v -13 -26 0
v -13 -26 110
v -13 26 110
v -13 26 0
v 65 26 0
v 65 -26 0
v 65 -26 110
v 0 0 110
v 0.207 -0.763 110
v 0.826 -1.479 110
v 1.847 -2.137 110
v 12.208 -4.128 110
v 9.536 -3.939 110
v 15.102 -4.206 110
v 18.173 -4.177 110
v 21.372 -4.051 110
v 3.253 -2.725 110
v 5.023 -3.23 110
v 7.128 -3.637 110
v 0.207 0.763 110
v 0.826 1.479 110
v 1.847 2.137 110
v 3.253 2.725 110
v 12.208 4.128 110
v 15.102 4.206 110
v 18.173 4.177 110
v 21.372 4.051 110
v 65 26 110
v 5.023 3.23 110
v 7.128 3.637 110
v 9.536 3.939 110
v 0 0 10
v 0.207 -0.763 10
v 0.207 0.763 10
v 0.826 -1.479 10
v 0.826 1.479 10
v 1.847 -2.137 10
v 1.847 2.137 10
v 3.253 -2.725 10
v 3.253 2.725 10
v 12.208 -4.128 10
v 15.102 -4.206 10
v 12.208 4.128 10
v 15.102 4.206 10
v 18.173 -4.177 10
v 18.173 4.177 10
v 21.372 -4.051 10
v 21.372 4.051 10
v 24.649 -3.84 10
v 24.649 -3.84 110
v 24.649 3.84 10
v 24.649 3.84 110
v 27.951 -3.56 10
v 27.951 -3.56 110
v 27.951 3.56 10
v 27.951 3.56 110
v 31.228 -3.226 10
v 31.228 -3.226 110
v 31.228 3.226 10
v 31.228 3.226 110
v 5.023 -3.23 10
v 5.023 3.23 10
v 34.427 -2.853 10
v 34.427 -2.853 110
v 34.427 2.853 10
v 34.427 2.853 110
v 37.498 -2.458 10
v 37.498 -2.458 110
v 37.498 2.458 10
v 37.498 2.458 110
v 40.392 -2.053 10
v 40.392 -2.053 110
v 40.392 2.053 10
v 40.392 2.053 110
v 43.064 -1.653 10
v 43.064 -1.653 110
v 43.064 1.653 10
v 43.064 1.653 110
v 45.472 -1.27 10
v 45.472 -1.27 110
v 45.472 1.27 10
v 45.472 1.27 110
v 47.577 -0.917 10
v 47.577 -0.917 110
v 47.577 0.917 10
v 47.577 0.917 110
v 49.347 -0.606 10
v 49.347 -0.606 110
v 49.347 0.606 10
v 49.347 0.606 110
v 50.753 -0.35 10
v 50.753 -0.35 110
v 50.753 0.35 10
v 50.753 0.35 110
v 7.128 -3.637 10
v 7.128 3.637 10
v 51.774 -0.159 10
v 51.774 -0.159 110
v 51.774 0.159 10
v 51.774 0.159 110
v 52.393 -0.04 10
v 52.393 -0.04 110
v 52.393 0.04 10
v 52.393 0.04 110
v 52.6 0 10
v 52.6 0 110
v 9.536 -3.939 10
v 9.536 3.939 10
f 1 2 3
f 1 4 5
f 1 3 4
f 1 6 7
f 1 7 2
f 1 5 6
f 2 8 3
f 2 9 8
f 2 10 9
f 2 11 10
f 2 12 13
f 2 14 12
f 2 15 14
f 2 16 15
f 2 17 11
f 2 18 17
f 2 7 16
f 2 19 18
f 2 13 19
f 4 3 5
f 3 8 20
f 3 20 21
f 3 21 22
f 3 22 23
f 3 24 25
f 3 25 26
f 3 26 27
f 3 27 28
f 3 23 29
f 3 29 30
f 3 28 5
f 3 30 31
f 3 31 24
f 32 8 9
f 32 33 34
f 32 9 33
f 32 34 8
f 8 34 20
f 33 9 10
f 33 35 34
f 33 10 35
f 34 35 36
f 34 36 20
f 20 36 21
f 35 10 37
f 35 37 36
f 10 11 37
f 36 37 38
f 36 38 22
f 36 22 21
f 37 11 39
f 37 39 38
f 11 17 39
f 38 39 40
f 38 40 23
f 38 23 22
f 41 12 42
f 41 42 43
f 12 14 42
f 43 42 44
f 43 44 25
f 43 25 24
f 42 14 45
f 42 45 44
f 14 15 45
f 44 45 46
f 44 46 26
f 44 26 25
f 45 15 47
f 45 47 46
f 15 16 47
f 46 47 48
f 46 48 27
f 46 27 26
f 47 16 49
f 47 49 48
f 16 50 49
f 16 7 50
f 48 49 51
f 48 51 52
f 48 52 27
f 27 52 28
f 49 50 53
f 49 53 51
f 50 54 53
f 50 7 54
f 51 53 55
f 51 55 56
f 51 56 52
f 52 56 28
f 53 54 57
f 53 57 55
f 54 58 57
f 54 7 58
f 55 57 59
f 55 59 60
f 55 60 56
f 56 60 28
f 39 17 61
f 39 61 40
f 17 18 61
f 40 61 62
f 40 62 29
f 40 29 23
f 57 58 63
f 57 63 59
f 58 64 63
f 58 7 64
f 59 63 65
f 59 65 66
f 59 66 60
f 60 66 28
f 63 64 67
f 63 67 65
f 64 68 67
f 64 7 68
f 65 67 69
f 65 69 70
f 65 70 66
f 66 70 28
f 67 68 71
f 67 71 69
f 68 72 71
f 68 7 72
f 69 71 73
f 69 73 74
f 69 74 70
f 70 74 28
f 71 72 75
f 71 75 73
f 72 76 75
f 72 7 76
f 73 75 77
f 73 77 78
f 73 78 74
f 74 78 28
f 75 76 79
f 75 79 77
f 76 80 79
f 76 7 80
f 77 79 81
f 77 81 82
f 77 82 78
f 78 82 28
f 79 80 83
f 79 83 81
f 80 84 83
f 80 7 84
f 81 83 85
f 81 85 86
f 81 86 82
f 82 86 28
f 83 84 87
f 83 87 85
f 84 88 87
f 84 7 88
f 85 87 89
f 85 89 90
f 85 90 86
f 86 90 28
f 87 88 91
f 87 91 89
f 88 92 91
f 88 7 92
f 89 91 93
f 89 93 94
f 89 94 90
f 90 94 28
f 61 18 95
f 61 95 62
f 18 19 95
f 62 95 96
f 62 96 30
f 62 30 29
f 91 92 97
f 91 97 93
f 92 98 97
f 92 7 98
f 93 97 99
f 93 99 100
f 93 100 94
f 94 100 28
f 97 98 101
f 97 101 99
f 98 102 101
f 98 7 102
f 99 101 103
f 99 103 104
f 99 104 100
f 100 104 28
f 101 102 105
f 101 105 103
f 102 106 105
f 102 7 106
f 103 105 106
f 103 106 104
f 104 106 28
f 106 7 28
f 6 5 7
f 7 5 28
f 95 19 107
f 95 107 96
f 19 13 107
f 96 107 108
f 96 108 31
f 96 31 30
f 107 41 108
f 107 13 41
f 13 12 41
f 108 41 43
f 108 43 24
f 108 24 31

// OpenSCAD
// file: ../lib/TextGenerator.scad
//Draw text
scale([4,4,4]) drawtext("Hello World!");

//Draw character set
//scale([2,2,2]) drawtext(" !\"#$%&'()*+,-./0123456789:;<=>?@ABCDEFGHIJKLMNOPQRSTUVWXYZ[\\]^_`abcdefghijklmnopqrstuvwxyz{|}");

module drawtext(text,center=false) {
	//Characters
	chars = " !\"#$%&'()*+,-./0123456789:;<=>?@ABCDEFGHIJKLMNOPQRSTUVWXYZ[\\]^_`abcdefghijklmnopqrstuvwxyz{|}";

	//Chracter table defining 5x7 characters
	//Adapted from: http://www.geocities.com/dinceraydin/djlcdsim/chartable.js
	char_table = [ [ 0, 0, 0, 0, 0, 0, 0],
                  [ 4, 0, 4, 4, 4, 4, 4],
                  [ 0, 0, 0, 0,10,10,10],
                  [10,10,31,10,31,10,10],
                  [ 4,30, 5,14,20,15, 4],
                  [ 3,19, 8, 4, 2,25,24],
                  [13,18,21, 8,20,18,12],
                  [ 0, 0, 0, 0, 8, 4,12],
                  [ 2, 4, 8, 8, 8, 4, 2],
                  [ 8, 4, 2, 2, 2, 4, 8],
                  [ 0, 4,21,14,21, 4, 0],
                  [ 0, 4, 4,31, 4, 4, 0],
                  [ 8, 4,12, 0, 0, 0, 0],
                  [ 0, 0, 0,31, 0, 0, 0],
                  [12,12, 0, 0, 0, 0, 0],
                  [ 0,16, 8, 4, 2, 1, 0],
                  [14,17,25,21,19,17,14],
                  [14, 4, 4, 4, 4,12, 4],
                  [31, 8, 4, 2, 1,17,14],
                  [14,17, 1, 2, 4, 2,31],
                  [ 2, 2,31,18,10, 6, 2],
                  [14,17, 1, 1,30,16,31],
                  [14,17,17,30,16, 8, 6],
                  [ 8, 8, 8, 4, 2, 1,31],
                  [14,17,17,14,17,17,14],
                  [12, 2, 1,15,17,17,14],
                  [ 0,12,12, 0,12,12, 0],
                  [ 8, 4,12, 0,12,12, 0],
                  [ 2, 4, 8,16, 8, 4, 2],
                  [ 0, 0,31, 0,31, 0, 0],
                  [16, 8, 4, 2, 4, 8,16],
                  [ 4, 0, 4, 2, 1,17,14],
                  [14,21,21,13, 1,17,14],
                  [17,17,31,17,17,17,14],
                  [30,17,17,30,17,17,30],
                  [14,17,16,16,16,17,14],
                  [30,17,17,17,17,17,30],
                  [31,16,16,30,16,16,31],
                  [16,16,16,30,16,16,31],
                  [15,17,17,23,16,17,14],
                  [17,17,17,31,17,17,17],
                  [14, 4, 4, 4, 4, 4,14],
                  [12,18, 2, 2, 2, 2, 7],
                  [17,18,20,24,20,18,17],
                  [31,16,16,16,16,16,16],
                  [17,17,17,21,21,27,17],
                  [17,17,19,21,25,17,17],
                  [14,17,17,17,17,17,14],
                  [16,16,16,30,17,17,30],
                  [13,18,21,17,17,17,14],
                  [17,18,20,30,17,17,30],
                  [30, 1, 1,14,16,16,15],
                  [ 4, 4, 4, 4, 4, 4,31],
                  [14,17,17,17,17,17,17],
                  [ 4,10,17,17,17,17,17],
                  [10,21,21,21,17,17,17],
                  [17,17,10, 4,10,17,17],
                  [ 4, 4, 4,10,17,17,17],
                  [31,16, 8, 4, 2, 1,31],
                  [14, 8, 8, 8, 8, 8,14],
                  [ 0, 1, 2, 4, 8,16, 0],
                  [14, 2, 2, 2, 2, 2,14],
                  [ 0, 0, 0, 0,17,10, 4],
                  [31, 0, 0, 0, 0, 0, 0],
                  [ 0, 0, 0, 0, 2, 4, 8],
                  [15,17,15, 1,14, 0, 0],
                  [30,17,17,25,22,16,16],
                  [14,17,16,16,14, 0, 0],
                  [15,17,17,19,13, 1, 1],
                  [14,16,31,17,14, 0, 0],
                  [ 8, 8, 8,28, 8, 9, 6],
                  [14, 1,15,17,15, 0, 0],
                  [17,17,17,25,22,16,16],
                  [14, 4, 4, 4,12, 0, 4],
                  [12,18, 2, 2, 2, 6, 2],
                  [18,20,24,20,18,16,16],
                  [14, 4, 4, 4, 4, 4,12],
                  [17,17,21,21,26, 0, 0],
                  [17,17,17,25,22, 0, 0],
                  [14,17,17,17,14, 0, 0],
                  [16,16,30,17,30, 0, 0],
                  [ 1, 1,15,19,13, 0, 0],
                  [16,16,16,25,22, 0, 0],
                  [30, 1,14,16,15, 0, 0],
                  [ 6, 9, 8, 8,28, 8, 8],
                  [13,19,17,17,17, 0, 0],
                  [ 4,10,17,17,17, 0, 0],
                  [10,21,21,17,17, 0, 0],
                  [17,10, 4,10,17, 0, 0],
                  [14, 1,15,17,17, 0, 0],
                  [31, 8, 4, 2,31, 0, 0],
                  [ 2, 4, 4, 8, 4, 4, 2],
                  [ 4, 4, 4, 4, 4, 4, 4],
                  [ 8, 4, 4, 2, 4, 4, 8] ];

	//Binary decode table
	dec_table = [ "00000", "00001", "00010", "00011", "00100", "00101",
  	            "00110", "00111", "01000", "01001", "01010", "01011",
  	            "01100", "01101", "01110", "01111", "10000", "10001",
  	            "10010", "10011", "10100", "10101", "10110", "10111",
	            "11000", "11001", "11010", "11011", "11100", "11101",
	            "11110", "11111" ];

    //Process string one character at a time
    for(itext = [0:len(text)-1]) {
        assign(length = len(text)) {
            //Convert character to index
            assign(ichar = search(text[itext],chars,1)[0]) {
                //Decode character - rows
                for(irow = [0:6]) {
                    assign(val = dec_table[char_table[ichar][irow]]) {
                        //Decode character - cols
                        for(icol = [0:4]) {
                            assign(bit = search(val[icol],"01",1)[0]) {
                                if(bit) {
                                    //Output cube
                                    if (center)
                                        translate([icol - 2.5 +
                                        (6*itext)-len(text)/2, irow-3.5,0])
                                            cube([1.0001,1.0001,1]);
                                    else {
                                        translate([icol + (6*itext), irow, 0])
                                            cube([1.0001,1.0001,1]);
                                    }
                                }
                            }
                        }
                    }
                }
            }
	}
}
}
// file: ../../Parameters.scad
//Main tube diameter - hole [mm]
main_tube_outer_diameter = 25.4;
main_tube_inner_diameter = 23.5;

//Tube for undercarriage - hole [mm]
tube_for_undercarriage_outer_diameter = 10.6;
tube_for_undercarriage_inner_diameter = 6;
global_clearance = 0.5;


//umístění podvozkových trubek

second_undercarriage_hole = main_tube_outer_diameter*2 + main_tube_outer_diameter/5 + main_tube_outer_diameter/2 + 170 + 160;

// Parameters of cube couplings
coupling_wall_thickness = main_tube_outer_diameter/5;  //width of coupling walls 
thickness_between_tubes = main_tube_outer_diameter/10;    // minimum distance between tubes in couplings

coupling_wall_thickness_undercarriage = tube_for_undercarriage_outer_diameter/3;
thickness_between_tubes_undercarriage = tube_for_undercarriage_outer_diameter/10;

//Screw diameter and nut for M4 [mm]
M4_screw_diameter=4.5;
Nut_height_M4 = 3.2;
Nut_diameter_M4 = 7.86;


//Screw diameter and nut for M3 [mm]
M3_screw_diameter = 3.2;
Nut_height_M3 = 1.7;	
Nut_diameter_M3 = 6.6; 


//The tube for help
Help_main_tube_outer = 25;
Help_main_tube_inner = 23; 
Help_tube_for_undercarriage_outer = 10;
Help_tube_for_undercarriage_inner = 5;


//main hull parameters

hull_drop_length = 580;
hull_wall_thickness = 0.8;
hull_y_size = 120;
hull_z_size = 150;
hull_x_size = 580;
hull_corner_radius = 4;
hull_airfoil_thickness= 35;  // thickness of drop generating airfoil in percent of lenght.
hull_scale_x = 1;
hull_scale_y = 1.5;
hull_scale_z = 1.5;

main_pilon_position = 170+68;
cover_pilon_position = 180;
height_of_vertical_tube = 275; //278mm je změřená délka trubky. 

ribbon_width = 5; // šířka vyztužovacích lemů. 

// šířka otvoru v přední části kapoty pro držák motoru.
width_of_engine_holder = 63;

//Top Cover Division - dělení horního krytu pro tisk
top_cover_division = [0, 50, 150, 280, 410, hull_x_size]; // upraveny seznam tak, aby deleni začinalo od nuly, což umožňí úplně automatické rozdělení.

//Bottom Cover Division - dělení dolního krytu pro tisk
bottom_cover_division = [0,100,250,365, 470, hull_x_size];
// zkrácená část pro payload pro testovací tisk
//bottom_cover_division = [0,200,250,365, 470, hull_x_size];

//Base Divison - dělení podložky
base_division = [0,140,280,410, hull_x_size];

//Cover pilon division - na výšku (v ose Z)
cover_pilon_division = [0,170,height_of_vertical_tube + main_tube_outer_diameter + coupling_wall_thickness];

//pozice šroubů
	//horní kryt
top_screw_position = [0, (top_cover_division[0] + top_cover_division[1])/4, (top_cover_division[2] - top_cover_division[1])/2 + top_cover_division[1], (top_cover_division[3] - top_cover_division[2])/2 + top_cover_division[2],(top_cover_division[4] - top_cover_division[3])/2 + top_cover_division[3],(top_cover_division[5] - top_cover_division[4])/2 + top_cover_division[4] - 20];
	//spodní kryt
bottom_screw_position = [0,(bottom_cover_division[0] + bottom_cover_division[1])/15 + 5, bottom_cover_division[1]/1.1, + bottom_cover_division[3], bottom_cover_division[3] + bottom_cover_division[1]/2, bottom_cover_division[4] - 6*global_clearance, bottom_cover_division[4] + bottom_cover_division[1]/2.5];




//šířka zámků
lock_width = 10;

//délka zámků
lock_length = 3;


//accumulator
//základní rozměry akumulátoru
width_of_accumulator = 129.4;//45+1;
depth_of_accumulator = 40.61;
height_of_accumulator = 43.65;
//Zapuštění akumulátoru
sink_of_accumulator = 5; //main_tube_outer_diameter/5 - Nut_height_M3*1.5;

//tloušťka hrany spojky
accumulator_holder_width = 18; 
accumulator_holder_thickness = 10; 

//posunutí akumálátoru na podložce
move_of_accumulator = 165;   // pozice akumulátoru (ovlivňuje těžiště)


////////////////
// Senzory
///////////////////

//opticalFlow
    width_optical_flow_senzor = 45.5;
    depth_optical_flow_senzor = 6;
    height_optical_flow_senzor = 35;
    sink_of_optical_flow_senzor = depth_optical_flow_senzor - 5; 
    M3_optical_flow_senzor_Z = 30.4;
    M3_optical_flow_senzor_X = 24;
    M3_optical_flow_senzor_Z_alone = 9.1;
    M3_optical_flow_senzor_X_alone = 16.7;
// file: ../lib/bevel.scad
h=20;

h_bevel=6;
r_bevel=3;

function h_bev(i)=h_bevel*(1-cos(90*i));
function r_bev(i)=((i==1)?e:0)+r_bevel*(1-sin(90*i));


e=0.001;

fn_bevel=16 ;
$fn=32;

module part_base(){
	cube([60,30,20]);
}

module part1(){
	translate([25,15,20])
		rotate([0,0,0])
			cylinder(40,10,5,true,$fn=5);
}

module part2(){
	translate([25,15,20])
		difference(){
		rotate([90,0,0])
			rotate_extrude()translate([10,0,0])circle(5);
		rotate([0,45,0])translate([100,0,0])cube(200,true);
		}
}

module part3(){
	translate([25,15,20])
		rotate([0,135,0])
			translate([-10,0,0])
			linear_extrude(height=15+e,scale=[1,e])circle(5);
}


module part4(){
	translate([25,15,0])
			translate([-10,0,0])
			cube([10,10,100]);
			/*union(){
				airfoil(naca = 0015, L = 20, N = 100, h = 50, open = false);
			}*/
}

module slice(h){
	projection(cut=true)
		translate([0,0,-h])
			children(0);
}

module edge(){
	difference(){
		minkowski(){
			children(0);
			circle(e);
		}
		children(0);
	}
}

module bev(i){
	minkowski(){
		children(0);
		circle(r_bev(i));
	}
}

module extrude(){
	linear_extrude(height=e)children(0);
}

module bevel(h,h_bevel,r_bevel,fn_bevel){
	translate([0,0,h])
		for(i=[0:1/fn_bevel:1-1/fn_bevel]){
			hull(){
				translate([0,0,h_bev(i)])
					extrude()bev(i)edge()slice(h+h_bev(i))children(0);
				translate([0,0,h_bev(i+1/fn_bevel)])
					extrude()bev(i+1/fn_bevel)edge()slice(h+h_bev(i+1/fn_bevel))children(0);
			}
		}
}


use <./naca4.scad>

//bevel(10,10,10,20)airfoil(naca = 0015, L = 100, N = 100, h = 50, open = false);



//bevel(h,h_bevel,r_bevel,fn_bevel)part2();
//bevel(h,h_bevel,r_bevel,fn_bevel)part3();
part1();
//part1();
bevel(h,h_bevel,r_bevel,fn_bevel)part1();
//part4();
//part1();
//part_base();
// file: ../lib/naca4.scad
// Naca4.scad - library for parametric airfoils of 4 digit NACA series
// Code: Rudolf Huttary, Berlin 
// June 2015
// commercial use prohibited


// general use: for more examples refer to sampler.scad
// naca = naca digits or 3el vector  (default = 12 or [0, 0, .12])
// L    = chord length [mm]      (default= 100)
// N    = # sample points        (default= 81)
// h    = height [mm]            (default= 1)
// open = close at the thin end? (default = true)
// two equivalent example calls
 airfoil(naca = 2408, L = 60, N=1001, h = 30, open = false); 
// airfoil(naca = [.2, .4, .32], L = 60, N=1001, h = 30, open = false); 

module help()
{
  echo(str("\n\nList of signatures in lib:\n=================\n", 
  "module airfoil(naca=2412, L = 100, N = 81, h = 1, open = false) - renders airfoil object\n", 
  "module airfoil(naca=[.2, .4, .12], L = 100, N = 81, h = 1, open = false) - renders airfoil object using percentage for camber,  camber distance and thicknes\n", 
  "function airfoil_data(naca=12, L = 100, N = 81, open = false)\n",
  "=================\n")); 
}

help(); 
// this is the object
module airfoil(naca=12, L = 100, N = 81, h = 1, open = false)
{
  linear_extrude(height = h)
  polygon(points = airfoil_data(naca, L, N, open)); 
}

module hollow_airfoil(lnaca=12, L = 100, N = 81, h = 1, open = false, wall_thickness = 1)
{
    if (open){
        linear_extrude(height = h)

        if (wall_thickness>0){
            difference(){
                polygon(points = airfoil_data(naca, L, N, false));
                offset(delta = - wall_thickness, chamfer = false) polygon(points = airfoil_data(naca, L, N, open = false));
            }
        }
        else{
            difference(){
                offset(delta = - wall_thickness, chamfer = false) polygon(points = airfoil_data(naca, L, N, open = false));
                polygon(points = airfoil_data(naca, L, N, false));
            }
        }
    }
    else{

        linear_extrude(height = abs(wall_thickness))
            polygon(points = airfoil_data(naca, L, N, false)); 

        linear_extrude(height = h)
            difference(){
                polygon(points = airfoil_data(naca, L, N, open));
                offset(delta = - wall_thickness) polygon(points = airfoil_data(naca, L, N, open = false));
            }

        translate([0,0, h - wall_thickness])
            linear_extrude(height = abs(wall_thickness))
                polygon(points = airfoil_data(naca, L, N, false)); 

    }
}


// this is the main function providing the airfoil data
function airfoil_data(naca=12, L = 100, N = 81, open = false) = 
  let(Na = len(naca)!=3?NACA(naca):naca)
  let(A = [.2969, -0.126, -.3516, .2843, open?-0.1015:-0.1036])
  [for (b=[-180:360/(N):179.99]) 
    let (x = (1-cos(b))/2)  
    let(yt = sign(b)*Na[2]/.2*(A*[sqrt(x), x, x*x, x*x*x, x*x*x*x])) 
    Na[0]==0?L*[x, yt]:L*camber(x, yt, Na[0], Na[1], sign(b))];  


function trailing_edge_angle(naca=12, open = false) = 
  let(Na = len(naca)!=3?NACA(naca):naca)
  let(A = [.2969, -0.126, -.3516, .2843, open?-0.1015:-0.1036])
  let (x =0.999)  // set x near to airfoil trailing edge
  let(yt = Na[2]/.2*(A*[sqrt(x), x, x*x, x*x*x, x*x*x*x])) // calculate distance from x-axis at previously set position
  atan2(yt,1-x);  // calculate angle of triangle between end of airfoil. The triange height corresponds to previously calculated distance from x-axis

function surface_angle(x = 0.5, naca=12, open = false) = 
  let(Na = len(naca)!=3?NACA(naca):naca)
  let(A = [0.2969, -0.126, -0.3516, 0.2843, open?-0.1015:-0.1036])
  let(dy = Na[2]/0.2*(A*[(1/2)*(1/sqrt(x)), 1, 2*x, 3*x*x, 4*x*x*x])) // calculate derivative of airfoil function at the x point
  atan(dy);  // calculate  the angle from function derivative

function surface_distance(x = 0.5, naca=12, open = false) = 
  let(Na = len(naca)!=3?NACA(naca):naca)
  let(A = [0.2969, -0.126, -0.3516, 0.2843, open?-0.1015:-0.1036])
  Na[2]/.2*(A*[sqrt(x), x, x*x, x*x*x, x*x*x*x]); // calculate distance from x-axis at previously set position

// helper functions
function NACA(naca) = 
  let (M = floor(naca/1000))
  let (P = floor((naca-M*1000)/100)) 
  [M/100, P/10, floor(naca-M*1000-P*100)/100];  

function camber(x, y, M, P, upper) = 
  let(yc = (x<P)?M/P/P*(2*P*x-x*x): M/(1-P)/(1-P)*(1 - 2*P + 2*P*x -x*x))
  let(dy = (x<P)?2*M/P/P*(P-x):2*M/(1-P)/(1-P)*(P-x))
  let(th = atan(dy))
  [upper ? x - y*sin(th):x + y*sin(th), upper ? yc + y*cos(th):yc - y*cos(th)];
// main file
DOC_SCALING_FACTOR = 100;
DOC_HEIGHT = 50;

include <../lib/dimlines.scad>

DIM_LINE_WIDTH = .025 * DOC_SCALING_FACTOR;
DIM_SPACE = .1 * DOC_SCALING_FACTOR;

draft = true;   // sets rendering quality to draft.
$fs = draft ? 5 : 0.5;
$fa = 10;

// Nastavení zobrazení
/*$vpr = [38, 0, 38];
$vpt = [0, 0, 0];
$vpd = 1960;
*/


module painting_helper(draft = false, holes = true){

    airfoil_NACA = 0016;    // typ použitého profilu
    airfoil_depth = 52; // hloubka profilu
    length = 100;       // celková délka polotovaru
    core_thickness = 1.0;       // tloušťka jádra
    bridge_thickness = 0.6;  // tloušťka spojení mezi rotorovým listem a rámečkem
    airfoil_thickness = (airfoil_NACA/100) * (airfoil_depth + bridge_thickness); // vypočtená maximální tloušťka profilu
    milling_cutter_radius = 1.5;

    difference(){
        translate([-airfoil_depth/4, - airfoil_depth/2, 0])
            cube([airfoil_depth*1.5, airfoil_depth, length + length/10]);
           
        translate([0,0,length/10])
            airfoil(naca = airfoil_NACA, L = airfoil_depth + bridge_thickness, N = draft ? 50 : 300, h = length, open = false);  
    }
}

painting_helper(draft = draft, holes = true);



use <../lib/naca4.scad>
use <../lib/bevel.scad>
use <../lib/dimlines.scad>
include <../../Parameters.scad>
